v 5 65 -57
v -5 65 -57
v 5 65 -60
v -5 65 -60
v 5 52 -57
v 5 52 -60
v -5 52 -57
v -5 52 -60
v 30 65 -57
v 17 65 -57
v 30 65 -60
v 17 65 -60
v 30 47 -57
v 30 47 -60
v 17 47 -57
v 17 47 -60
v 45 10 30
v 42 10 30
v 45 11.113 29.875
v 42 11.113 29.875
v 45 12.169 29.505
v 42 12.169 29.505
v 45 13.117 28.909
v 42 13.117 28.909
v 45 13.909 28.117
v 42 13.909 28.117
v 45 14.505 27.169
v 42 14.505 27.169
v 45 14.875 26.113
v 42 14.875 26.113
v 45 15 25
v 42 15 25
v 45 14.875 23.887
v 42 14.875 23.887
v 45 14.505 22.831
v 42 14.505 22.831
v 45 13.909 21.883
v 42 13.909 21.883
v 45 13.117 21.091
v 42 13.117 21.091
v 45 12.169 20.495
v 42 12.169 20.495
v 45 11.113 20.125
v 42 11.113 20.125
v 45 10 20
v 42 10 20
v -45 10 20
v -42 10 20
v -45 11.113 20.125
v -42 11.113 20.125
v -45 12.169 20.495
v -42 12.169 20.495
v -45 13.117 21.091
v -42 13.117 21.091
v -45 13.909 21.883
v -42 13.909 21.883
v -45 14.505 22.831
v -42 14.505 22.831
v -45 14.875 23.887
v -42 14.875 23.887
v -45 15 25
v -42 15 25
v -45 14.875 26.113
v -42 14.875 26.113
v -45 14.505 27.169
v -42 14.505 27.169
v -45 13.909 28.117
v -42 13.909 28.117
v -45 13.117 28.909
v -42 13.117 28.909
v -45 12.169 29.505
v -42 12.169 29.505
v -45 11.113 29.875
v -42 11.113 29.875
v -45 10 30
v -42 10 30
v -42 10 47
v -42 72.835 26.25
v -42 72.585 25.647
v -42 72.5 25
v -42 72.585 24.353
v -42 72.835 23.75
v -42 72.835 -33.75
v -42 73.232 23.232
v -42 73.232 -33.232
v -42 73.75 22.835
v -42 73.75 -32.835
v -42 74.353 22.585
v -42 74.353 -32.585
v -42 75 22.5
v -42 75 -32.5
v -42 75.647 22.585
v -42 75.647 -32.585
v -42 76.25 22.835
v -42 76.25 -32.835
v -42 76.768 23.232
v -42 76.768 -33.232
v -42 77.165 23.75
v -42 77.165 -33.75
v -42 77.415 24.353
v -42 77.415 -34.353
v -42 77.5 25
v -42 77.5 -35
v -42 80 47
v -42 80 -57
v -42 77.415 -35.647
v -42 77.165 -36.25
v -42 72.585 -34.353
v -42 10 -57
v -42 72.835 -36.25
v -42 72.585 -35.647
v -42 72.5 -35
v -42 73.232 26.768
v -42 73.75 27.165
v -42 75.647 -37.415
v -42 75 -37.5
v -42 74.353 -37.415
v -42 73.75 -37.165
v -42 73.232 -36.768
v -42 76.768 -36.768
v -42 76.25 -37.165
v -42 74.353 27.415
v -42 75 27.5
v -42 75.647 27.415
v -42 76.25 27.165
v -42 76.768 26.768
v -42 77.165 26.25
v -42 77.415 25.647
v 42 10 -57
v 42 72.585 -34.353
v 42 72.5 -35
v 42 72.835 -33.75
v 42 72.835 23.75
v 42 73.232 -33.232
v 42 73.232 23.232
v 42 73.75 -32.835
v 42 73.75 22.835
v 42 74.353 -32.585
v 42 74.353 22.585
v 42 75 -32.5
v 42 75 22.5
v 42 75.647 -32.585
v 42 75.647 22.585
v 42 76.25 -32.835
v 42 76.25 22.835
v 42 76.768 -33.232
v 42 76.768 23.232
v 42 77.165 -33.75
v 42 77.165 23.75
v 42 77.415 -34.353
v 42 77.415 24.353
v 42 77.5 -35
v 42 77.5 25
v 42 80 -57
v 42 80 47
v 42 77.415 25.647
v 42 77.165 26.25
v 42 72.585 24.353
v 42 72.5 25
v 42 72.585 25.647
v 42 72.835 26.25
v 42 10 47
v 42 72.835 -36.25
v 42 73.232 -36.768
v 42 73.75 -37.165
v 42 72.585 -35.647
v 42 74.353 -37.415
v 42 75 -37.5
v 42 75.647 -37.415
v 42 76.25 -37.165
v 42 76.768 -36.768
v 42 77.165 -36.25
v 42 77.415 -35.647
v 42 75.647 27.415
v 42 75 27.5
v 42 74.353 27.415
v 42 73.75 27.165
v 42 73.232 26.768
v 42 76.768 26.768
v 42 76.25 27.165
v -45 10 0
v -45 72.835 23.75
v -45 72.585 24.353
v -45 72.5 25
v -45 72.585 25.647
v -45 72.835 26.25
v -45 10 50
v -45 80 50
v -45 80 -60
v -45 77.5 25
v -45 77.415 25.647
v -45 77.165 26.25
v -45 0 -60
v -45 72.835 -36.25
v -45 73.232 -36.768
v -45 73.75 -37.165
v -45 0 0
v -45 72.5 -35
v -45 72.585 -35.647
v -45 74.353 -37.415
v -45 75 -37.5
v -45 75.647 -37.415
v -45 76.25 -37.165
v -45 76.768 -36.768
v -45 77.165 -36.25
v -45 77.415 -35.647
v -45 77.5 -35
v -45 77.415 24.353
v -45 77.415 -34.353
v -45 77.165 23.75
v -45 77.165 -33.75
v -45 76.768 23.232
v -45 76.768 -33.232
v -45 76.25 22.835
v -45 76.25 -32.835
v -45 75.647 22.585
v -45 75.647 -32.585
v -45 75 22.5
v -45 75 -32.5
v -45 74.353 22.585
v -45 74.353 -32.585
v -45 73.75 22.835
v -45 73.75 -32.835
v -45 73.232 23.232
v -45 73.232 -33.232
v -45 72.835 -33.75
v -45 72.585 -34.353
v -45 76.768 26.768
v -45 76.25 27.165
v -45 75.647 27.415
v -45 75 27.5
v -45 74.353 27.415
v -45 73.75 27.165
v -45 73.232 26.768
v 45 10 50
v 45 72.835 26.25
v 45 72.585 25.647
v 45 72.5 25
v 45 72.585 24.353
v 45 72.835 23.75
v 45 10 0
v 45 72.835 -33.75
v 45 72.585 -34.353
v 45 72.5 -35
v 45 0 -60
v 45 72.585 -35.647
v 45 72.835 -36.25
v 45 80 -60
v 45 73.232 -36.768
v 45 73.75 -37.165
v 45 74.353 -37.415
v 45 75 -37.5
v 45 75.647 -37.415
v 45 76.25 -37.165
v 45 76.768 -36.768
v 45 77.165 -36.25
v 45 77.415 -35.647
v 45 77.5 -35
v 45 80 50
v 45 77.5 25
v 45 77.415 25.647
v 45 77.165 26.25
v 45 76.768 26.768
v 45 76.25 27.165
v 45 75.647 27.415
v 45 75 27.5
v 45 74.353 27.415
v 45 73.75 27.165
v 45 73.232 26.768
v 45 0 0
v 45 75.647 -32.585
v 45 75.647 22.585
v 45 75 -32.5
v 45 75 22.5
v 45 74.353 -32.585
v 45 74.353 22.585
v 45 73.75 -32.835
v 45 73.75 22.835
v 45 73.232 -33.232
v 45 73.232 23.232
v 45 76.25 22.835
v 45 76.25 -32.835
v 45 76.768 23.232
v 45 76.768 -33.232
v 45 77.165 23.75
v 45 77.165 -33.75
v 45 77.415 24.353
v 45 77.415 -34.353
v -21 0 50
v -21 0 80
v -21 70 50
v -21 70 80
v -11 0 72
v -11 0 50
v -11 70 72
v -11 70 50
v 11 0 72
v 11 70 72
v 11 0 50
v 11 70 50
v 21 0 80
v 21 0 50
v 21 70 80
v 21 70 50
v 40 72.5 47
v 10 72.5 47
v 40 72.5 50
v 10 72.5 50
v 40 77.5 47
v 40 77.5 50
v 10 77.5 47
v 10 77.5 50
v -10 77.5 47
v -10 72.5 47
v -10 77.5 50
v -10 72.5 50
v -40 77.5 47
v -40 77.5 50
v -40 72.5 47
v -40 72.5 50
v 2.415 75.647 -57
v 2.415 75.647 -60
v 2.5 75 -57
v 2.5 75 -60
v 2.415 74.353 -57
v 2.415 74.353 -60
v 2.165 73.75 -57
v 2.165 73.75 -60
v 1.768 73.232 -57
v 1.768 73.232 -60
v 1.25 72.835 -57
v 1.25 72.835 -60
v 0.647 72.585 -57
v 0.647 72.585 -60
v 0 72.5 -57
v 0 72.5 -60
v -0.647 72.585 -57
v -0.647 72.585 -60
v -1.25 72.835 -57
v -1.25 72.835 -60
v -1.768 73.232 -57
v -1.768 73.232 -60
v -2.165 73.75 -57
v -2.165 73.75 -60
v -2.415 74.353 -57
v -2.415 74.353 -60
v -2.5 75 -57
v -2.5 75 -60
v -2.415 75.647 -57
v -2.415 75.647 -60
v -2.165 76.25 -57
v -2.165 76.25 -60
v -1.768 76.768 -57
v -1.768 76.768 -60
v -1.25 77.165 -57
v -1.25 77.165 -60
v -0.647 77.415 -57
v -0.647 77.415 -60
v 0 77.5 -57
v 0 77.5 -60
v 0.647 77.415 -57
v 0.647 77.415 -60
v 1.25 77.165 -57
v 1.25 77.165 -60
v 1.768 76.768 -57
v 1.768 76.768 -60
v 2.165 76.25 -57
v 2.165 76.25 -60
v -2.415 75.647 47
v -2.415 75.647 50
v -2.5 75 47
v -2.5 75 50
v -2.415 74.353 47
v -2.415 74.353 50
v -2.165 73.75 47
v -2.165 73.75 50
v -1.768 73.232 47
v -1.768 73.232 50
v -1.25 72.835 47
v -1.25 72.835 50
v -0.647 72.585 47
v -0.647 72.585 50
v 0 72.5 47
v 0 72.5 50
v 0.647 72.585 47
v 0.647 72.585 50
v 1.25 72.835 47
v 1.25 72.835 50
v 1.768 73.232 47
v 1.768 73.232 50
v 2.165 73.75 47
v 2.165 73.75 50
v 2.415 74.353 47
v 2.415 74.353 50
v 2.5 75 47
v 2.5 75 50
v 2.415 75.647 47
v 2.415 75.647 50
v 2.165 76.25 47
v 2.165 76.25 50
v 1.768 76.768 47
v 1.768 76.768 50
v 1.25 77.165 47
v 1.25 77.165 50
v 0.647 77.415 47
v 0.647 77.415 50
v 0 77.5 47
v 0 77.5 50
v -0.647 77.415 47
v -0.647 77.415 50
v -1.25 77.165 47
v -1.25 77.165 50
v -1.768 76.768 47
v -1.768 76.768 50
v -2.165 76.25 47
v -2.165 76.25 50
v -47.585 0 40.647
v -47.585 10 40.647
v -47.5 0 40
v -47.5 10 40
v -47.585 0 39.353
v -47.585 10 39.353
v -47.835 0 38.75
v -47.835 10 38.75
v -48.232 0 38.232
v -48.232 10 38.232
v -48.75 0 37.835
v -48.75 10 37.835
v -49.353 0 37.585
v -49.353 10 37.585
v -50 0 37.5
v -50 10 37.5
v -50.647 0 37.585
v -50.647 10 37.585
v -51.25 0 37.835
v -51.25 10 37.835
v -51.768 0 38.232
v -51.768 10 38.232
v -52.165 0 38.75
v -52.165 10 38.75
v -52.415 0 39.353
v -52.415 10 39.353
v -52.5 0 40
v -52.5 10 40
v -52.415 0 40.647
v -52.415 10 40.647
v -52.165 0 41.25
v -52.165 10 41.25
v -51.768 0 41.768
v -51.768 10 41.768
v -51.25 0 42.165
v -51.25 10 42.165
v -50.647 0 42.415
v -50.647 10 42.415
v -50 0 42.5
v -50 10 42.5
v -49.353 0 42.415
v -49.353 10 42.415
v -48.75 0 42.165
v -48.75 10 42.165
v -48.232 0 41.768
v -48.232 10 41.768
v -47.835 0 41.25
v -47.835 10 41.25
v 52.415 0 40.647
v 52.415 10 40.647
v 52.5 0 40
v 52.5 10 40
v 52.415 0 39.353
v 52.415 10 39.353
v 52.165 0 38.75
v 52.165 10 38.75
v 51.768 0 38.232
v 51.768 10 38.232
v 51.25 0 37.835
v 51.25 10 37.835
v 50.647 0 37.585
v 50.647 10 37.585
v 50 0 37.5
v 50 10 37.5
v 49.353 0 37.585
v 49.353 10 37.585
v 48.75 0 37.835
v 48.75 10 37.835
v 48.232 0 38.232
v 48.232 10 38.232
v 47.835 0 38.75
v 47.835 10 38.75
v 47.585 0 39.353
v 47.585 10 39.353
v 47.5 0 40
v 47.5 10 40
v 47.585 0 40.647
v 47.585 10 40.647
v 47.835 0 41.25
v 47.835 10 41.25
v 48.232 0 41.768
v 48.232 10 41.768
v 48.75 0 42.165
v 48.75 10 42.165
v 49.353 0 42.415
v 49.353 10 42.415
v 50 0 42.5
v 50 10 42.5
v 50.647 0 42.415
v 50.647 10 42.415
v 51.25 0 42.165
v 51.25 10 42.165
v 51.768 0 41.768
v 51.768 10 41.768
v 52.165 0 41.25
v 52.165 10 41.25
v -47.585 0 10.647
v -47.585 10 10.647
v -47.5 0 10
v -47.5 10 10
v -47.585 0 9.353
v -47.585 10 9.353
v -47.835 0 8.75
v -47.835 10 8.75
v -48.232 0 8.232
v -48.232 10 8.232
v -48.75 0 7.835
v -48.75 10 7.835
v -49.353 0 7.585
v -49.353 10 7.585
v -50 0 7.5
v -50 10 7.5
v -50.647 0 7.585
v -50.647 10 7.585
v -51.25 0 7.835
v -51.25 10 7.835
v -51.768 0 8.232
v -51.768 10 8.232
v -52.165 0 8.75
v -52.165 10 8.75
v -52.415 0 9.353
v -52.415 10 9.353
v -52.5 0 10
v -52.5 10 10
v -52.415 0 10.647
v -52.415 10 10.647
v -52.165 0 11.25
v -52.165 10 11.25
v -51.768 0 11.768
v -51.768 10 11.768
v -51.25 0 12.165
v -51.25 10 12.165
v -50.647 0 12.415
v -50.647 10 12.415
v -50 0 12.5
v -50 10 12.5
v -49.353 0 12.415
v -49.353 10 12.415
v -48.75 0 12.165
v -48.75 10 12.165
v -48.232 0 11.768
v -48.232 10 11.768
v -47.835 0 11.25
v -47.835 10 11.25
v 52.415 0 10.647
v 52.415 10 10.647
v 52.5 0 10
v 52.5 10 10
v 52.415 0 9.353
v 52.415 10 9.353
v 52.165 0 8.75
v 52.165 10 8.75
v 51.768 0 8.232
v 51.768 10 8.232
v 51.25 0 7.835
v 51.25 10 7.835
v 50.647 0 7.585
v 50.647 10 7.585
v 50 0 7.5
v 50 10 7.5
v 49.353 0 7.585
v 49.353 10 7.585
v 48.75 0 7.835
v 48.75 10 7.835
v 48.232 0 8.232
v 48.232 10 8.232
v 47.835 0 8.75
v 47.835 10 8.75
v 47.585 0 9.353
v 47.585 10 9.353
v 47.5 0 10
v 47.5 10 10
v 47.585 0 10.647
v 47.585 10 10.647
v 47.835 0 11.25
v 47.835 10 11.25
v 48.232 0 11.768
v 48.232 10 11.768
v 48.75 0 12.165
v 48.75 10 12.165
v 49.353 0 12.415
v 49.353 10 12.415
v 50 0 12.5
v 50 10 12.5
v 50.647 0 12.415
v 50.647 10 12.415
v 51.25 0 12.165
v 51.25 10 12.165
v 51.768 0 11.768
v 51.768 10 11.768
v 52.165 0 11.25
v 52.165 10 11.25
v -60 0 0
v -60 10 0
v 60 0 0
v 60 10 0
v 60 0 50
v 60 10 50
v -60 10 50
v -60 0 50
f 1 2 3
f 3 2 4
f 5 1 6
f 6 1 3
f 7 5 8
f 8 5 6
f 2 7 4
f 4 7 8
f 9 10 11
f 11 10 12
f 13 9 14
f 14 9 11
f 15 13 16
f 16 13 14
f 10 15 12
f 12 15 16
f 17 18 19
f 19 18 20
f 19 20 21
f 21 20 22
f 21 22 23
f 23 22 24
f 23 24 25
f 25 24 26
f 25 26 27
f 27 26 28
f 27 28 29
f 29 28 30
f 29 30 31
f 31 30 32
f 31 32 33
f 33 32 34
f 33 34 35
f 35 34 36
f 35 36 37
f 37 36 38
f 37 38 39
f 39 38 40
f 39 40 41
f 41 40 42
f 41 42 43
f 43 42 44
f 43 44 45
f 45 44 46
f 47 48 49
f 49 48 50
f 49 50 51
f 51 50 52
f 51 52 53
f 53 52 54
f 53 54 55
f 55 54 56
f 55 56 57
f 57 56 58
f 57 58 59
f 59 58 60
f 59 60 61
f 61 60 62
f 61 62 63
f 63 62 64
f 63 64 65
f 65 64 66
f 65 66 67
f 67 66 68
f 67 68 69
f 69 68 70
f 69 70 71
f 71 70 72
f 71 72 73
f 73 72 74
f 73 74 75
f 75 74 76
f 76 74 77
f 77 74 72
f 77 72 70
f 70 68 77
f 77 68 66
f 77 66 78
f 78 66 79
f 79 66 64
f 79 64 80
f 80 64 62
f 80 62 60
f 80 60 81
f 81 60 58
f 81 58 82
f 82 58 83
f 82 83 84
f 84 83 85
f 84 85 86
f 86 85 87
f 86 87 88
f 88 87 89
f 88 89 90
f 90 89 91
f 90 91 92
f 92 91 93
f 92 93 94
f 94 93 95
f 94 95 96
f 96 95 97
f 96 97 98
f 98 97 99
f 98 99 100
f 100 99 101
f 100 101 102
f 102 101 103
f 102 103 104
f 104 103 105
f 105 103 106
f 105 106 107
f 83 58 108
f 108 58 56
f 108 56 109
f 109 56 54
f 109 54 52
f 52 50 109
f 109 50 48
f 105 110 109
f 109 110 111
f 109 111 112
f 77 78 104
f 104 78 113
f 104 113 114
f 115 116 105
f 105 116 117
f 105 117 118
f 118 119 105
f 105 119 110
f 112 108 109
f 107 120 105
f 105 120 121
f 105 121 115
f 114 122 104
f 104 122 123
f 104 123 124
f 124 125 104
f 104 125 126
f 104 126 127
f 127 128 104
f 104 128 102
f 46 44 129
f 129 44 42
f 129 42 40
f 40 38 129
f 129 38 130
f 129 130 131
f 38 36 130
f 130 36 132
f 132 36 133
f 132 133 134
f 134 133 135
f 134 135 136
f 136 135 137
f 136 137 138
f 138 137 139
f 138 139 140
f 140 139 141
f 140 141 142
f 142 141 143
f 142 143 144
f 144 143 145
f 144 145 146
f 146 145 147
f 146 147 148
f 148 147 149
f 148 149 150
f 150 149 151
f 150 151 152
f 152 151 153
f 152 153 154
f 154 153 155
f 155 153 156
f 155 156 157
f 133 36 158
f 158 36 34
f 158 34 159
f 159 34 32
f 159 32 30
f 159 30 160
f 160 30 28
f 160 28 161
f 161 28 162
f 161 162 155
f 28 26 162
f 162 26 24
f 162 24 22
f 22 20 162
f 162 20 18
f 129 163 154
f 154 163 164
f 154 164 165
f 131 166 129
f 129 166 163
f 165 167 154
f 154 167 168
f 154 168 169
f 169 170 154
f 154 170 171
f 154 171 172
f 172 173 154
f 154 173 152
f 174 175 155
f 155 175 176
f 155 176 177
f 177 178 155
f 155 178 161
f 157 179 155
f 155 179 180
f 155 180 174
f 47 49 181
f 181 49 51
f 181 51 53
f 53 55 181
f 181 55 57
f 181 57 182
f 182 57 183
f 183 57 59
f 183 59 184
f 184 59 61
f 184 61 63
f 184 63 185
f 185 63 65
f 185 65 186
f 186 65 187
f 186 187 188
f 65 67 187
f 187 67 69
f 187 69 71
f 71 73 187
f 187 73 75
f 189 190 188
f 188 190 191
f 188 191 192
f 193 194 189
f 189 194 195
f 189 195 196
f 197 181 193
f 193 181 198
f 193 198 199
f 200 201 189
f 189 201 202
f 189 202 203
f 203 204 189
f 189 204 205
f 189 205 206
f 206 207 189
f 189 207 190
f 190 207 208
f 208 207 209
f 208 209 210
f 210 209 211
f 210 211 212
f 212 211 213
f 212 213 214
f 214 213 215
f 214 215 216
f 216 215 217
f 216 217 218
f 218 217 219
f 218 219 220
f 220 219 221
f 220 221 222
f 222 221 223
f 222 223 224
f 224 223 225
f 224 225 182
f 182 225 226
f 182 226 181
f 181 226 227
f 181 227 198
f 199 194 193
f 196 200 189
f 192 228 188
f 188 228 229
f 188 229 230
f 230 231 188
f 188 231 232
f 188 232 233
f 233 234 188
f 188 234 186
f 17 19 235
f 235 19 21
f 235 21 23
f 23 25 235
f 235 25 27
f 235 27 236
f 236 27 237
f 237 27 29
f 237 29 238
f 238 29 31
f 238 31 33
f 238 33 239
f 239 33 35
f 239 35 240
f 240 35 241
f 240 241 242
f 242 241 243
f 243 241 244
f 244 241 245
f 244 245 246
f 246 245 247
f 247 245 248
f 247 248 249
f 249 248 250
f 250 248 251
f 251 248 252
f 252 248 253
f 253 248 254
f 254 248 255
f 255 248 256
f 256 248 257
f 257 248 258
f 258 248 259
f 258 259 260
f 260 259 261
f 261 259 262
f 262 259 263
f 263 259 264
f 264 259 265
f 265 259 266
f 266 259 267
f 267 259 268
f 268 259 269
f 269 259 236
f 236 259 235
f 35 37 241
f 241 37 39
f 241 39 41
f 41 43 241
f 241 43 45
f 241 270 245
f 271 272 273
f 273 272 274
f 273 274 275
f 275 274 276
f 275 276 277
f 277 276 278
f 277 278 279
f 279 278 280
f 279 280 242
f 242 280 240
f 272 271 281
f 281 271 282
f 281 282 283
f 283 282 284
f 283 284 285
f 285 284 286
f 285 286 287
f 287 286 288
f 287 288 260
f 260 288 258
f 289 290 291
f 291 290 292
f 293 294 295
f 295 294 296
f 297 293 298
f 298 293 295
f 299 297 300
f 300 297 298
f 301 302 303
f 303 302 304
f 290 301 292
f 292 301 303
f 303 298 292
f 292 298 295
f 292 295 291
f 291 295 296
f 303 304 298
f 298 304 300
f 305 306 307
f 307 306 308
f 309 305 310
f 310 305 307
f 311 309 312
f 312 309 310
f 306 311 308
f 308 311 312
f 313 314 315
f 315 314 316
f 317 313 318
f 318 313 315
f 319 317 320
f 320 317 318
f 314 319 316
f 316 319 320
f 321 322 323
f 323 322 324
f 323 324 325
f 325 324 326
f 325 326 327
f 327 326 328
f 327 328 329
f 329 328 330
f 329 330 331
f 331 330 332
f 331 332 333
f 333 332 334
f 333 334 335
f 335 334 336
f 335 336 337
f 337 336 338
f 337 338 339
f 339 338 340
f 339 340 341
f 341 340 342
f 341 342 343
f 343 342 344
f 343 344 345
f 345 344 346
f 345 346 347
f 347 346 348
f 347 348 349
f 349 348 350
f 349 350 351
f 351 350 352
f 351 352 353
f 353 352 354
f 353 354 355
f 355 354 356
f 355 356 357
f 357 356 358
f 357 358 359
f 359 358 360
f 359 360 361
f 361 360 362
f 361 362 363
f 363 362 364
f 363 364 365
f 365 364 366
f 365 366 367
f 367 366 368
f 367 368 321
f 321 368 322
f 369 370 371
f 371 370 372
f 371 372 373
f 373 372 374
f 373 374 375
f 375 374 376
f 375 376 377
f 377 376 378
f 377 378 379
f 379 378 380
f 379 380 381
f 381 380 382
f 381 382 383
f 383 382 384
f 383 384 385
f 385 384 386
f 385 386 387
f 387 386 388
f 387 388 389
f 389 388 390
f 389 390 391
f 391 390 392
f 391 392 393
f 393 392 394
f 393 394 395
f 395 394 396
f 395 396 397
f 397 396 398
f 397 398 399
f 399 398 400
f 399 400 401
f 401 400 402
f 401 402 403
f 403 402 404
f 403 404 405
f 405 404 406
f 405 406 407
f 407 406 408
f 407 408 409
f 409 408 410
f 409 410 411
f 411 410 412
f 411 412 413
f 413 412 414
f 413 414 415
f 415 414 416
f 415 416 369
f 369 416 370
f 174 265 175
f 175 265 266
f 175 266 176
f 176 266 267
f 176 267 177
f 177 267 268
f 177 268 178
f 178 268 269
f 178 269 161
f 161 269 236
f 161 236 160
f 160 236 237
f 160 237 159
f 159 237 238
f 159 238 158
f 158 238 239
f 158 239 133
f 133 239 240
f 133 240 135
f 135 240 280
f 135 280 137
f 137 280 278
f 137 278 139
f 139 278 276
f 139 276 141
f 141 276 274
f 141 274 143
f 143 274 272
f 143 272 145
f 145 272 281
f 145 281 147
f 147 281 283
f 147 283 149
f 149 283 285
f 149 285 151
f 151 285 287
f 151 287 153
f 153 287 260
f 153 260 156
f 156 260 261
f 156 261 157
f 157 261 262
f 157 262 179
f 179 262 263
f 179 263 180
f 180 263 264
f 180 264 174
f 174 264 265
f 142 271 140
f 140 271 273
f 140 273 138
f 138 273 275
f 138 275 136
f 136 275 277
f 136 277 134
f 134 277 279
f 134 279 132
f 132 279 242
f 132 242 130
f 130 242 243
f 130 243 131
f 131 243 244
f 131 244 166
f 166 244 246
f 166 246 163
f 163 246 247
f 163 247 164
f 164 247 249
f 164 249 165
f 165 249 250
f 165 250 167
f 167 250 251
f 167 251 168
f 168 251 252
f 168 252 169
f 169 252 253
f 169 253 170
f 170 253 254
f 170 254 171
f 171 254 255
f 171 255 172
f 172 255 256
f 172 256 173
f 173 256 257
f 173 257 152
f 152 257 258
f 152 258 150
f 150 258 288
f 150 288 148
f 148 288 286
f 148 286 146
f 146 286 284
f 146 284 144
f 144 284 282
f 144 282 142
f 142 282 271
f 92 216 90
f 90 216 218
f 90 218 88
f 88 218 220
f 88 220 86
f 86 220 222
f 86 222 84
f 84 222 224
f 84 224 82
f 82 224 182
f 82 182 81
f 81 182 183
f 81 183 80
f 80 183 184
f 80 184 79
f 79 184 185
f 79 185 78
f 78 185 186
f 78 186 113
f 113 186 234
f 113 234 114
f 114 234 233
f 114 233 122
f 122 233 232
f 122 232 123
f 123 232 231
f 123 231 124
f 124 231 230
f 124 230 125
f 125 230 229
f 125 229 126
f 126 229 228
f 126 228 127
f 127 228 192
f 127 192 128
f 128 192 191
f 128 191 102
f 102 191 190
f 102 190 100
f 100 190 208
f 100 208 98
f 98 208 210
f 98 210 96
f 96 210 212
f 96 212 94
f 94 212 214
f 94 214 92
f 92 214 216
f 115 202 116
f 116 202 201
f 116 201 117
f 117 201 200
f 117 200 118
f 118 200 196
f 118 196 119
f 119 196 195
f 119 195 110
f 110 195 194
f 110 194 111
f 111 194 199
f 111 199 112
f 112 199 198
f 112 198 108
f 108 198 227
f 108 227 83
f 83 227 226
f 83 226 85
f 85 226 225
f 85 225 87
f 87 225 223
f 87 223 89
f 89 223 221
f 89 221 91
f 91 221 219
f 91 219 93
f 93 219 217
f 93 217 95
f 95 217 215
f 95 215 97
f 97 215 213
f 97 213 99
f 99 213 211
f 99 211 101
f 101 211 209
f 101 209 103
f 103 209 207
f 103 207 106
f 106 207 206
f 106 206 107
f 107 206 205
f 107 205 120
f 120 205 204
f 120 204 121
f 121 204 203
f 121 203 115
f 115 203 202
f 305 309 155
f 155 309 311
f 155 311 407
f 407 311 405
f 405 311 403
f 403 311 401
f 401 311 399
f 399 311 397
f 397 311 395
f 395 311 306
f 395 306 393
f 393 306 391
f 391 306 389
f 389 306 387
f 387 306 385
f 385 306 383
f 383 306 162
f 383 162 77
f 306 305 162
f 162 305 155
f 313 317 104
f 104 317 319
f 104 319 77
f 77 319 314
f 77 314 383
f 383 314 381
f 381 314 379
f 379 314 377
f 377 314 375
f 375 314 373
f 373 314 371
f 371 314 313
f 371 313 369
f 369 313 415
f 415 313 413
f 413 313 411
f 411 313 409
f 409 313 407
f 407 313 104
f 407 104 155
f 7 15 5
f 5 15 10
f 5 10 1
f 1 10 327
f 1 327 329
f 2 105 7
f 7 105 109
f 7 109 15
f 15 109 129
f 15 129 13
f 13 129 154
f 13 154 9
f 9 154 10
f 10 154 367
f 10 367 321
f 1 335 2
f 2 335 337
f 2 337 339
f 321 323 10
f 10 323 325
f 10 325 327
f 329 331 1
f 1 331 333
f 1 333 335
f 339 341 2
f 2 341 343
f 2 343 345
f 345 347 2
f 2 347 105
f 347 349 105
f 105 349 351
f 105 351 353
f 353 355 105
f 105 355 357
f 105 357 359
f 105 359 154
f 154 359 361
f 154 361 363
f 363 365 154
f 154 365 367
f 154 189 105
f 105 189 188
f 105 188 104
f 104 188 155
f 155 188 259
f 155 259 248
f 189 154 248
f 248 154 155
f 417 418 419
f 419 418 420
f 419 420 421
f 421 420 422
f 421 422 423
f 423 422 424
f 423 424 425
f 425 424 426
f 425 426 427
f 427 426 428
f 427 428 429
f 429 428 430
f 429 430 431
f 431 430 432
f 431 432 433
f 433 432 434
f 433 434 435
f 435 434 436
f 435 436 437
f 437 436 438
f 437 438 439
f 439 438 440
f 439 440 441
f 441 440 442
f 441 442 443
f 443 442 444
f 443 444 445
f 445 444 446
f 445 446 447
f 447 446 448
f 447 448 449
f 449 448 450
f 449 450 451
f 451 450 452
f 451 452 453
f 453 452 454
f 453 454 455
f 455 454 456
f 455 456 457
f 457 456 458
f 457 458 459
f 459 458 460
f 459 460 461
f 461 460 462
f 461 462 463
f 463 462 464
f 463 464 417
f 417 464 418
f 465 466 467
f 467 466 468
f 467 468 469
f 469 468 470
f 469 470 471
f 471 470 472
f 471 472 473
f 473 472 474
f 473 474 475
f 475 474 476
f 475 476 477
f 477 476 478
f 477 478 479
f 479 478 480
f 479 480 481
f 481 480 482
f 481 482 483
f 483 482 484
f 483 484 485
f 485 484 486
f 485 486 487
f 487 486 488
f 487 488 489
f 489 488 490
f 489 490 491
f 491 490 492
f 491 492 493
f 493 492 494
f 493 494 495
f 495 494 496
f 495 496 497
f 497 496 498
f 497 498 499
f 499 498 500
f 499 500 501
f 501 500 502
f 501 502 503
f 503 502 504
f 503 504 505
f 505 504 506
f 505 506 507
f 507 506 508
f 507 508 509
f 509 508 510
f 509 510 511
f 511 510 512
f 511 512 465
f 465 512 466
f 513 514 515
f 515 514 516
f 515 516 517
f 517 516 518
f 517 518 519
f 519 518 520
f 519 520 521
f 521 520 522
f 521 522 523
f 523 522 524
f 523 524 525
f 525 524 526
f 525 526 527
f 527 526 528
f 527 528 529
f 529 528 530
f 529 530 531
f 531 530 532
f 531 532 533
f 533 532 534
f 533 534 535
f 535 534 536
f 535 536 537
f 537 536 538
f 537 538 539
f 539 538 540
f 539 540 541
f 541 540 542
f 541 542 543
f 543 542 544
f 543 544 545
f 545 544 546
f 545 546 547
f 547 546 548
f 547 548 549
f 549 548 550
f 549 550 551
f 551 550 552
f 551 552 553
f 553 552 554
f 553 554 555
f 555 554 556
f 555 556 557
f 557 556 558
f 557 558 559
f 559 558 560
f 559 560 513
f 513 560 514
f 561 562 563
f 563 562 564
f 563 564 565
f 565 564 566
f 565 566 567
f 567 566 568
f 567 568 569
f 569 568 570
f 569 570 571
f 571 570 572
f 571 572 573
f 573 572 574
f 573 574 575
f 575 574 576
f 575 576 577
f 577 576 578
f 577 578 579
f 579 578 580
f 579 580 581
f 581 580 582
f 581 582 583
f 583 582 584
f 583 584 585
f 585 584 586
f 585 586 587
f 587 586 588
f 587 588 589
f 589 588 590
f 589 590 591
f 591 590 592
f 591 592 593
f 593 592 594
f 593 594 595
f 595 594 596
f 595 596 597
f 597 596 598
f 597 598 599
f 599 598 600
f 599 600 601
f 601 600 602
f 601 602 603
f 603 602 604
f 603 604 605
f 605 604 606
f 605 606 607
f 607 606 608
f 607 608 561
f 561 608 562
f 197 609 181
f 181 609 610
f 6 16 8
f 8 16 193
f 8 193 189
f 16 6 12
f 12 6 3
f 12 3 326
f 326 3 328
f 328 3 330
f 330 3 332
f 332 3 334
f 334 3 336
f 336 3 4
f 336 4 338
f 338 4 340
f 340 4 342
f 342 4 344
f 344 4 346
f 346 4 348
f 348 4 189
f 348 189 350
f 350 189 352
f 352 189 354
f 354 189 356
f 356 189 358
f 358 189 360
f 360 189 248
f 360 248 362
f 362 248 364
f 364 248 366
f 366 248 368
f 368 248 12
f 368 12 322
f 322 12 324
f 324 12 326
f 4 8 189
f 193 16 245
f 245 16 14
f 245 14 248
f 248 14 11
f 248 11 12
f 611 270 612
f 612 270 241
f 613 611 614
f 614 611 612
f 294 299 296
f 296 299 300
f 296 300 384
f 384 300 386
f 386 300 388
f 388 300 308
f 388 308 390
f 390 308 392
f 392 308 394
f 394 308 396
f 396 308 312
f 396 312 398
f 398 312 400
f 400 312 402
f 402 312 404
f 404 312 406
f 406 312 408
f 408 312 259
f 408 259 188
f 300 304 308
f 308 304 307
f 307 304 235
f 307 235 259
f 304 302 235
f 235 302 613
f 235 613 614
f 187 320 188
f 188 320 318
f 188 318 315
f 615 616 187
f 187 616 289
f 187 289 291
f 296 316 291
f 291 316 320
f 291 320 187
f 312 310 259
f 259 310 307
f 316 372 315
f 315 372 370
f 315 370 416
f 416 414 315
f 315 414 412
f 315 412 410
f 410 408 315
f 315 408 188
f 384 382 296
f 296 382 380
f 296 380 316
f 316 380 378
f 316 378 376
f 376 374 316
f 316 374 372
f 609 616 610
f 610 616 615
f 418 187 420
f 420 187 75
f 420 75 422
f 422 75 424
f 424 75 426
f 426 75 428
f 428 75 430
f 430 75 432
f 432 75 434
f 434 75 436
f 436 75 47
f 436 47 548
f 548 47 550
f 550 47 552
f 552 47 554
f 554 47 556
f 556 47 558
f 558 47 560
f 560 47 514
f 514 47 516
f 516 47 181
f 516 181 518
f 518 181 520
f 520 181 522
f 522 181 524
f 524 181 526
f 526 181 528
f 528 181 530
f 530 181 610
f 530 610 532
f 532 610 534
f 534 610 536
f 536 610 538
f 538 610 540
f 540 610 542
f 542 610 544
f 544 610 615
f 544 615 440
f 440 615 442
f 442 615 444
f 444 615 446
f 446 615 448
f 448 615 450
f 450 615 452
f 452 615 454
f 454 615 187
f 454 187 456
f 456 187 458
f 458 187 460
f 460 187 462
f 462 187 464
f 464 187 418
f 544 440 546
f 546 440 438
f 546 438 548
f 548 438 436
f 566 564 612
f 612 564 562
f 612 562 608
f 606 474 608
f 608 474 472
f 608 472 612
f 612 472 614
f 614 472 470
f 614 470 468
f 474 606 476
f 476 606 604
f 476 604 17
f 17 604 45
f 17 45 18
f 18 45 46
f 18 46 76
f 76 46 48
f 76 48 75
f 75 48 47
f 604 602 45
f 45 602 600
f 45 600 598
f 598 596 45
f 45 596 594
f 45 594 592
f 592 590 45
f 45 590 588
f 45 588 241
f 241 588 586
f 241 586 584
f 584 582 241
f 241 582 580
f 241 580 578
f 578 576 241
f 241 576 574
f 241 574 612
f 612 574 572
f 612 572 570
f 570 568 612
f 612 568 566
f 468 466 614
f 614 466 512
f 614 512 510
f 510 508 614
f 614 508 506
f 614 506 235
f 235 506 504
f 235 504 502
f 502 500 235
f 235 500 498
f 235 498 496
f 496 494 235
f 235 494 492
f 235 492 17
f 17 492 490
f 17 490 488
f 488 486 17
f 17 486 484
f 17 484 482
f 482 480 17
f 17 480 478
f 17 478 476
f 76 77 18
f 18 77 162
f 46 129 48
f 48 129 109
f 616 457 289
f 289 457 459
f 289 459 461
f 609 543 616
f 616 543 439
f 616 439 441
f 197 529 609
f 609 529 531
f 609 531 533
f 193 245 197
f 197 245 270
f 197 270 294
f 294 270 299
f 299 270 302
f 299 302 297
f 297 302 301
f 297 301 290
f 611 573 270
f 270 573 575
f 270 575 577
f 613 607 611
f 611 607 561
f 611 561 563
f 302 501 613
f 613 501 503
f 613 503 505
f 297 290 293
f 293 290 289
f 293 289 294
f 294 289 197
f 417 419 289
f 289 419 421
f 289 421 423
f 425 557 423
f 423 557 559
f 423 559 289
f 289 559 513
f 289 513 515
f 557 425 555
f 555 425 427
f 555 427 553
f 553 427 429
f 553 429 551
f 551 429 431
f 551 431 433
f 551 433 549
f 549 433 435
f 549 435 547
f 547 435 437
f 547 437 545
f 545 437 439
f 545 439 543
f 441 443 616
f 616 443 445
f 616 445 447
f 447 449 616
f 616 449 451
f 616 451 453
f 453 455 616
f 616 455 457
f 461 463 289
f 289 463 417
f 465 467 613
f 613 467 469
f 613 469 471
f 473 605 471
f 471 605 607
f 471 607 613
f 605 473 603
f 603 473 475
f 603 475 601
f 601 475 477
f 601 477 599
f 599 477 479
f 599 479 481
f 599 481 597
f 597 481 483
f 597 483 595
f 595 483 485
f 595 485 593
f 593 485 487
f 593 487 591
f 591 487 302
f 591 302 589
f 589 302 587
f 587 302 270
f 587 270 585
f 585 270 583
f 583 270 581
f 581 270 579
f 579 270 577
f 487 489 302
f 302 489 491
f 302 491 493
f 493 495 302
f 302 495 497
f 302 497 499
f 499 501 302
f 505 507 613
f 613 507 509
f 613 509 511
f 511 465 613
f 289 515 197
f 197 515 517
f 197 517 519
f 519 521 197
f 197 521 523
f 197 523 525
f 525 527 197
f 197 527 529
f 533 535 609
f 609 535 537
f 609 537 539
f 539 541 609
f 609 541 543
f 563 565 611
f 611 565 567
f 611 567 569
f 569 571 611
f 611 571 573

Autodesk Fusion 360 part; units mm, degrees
sketch "Sketch1" plane through (0, 0, 0) normal (0, 1, 0) x (1, 0, 0)
  line L0 (0, 0) -> (60, 0)
  line L1 (60, 0) -> (-60, 0)
  line L2 (-60, 0) -> (-60, -50)
  line L3 (-60, -50) -> (60, -50)
  line L4 (60, -50) -> (60, 0)
  line L5 (-60, 0) -> (-45, 0)
  line L6 (60, 0) -> (45, 0)
  line L7 (-45, 0) -> (-45, 60)
  line L8 (45, 0) -> (45, 60)
  line L9 (-45, 60) -> (45, 60)
  dimension "d1" = 60
  dimension "d2" = 120
  dimension "d3" = 50
  dimension "d4" = 15
  dimension "d5" = 15
  dimension "d6" = 60
  dimension "d7" = 60
extrude "Extrude1" add sketch "Sketch1" along normal blind 10
sketch "Sketch2" plane through (0, 10, 0) normal (0, 1, 0) x (-1, 0, 0)
  line L0 (60, 0) -> (60, 50)
  line L1 (60, 50) -> (-60, 50)
  line L2 (-60, 50) -> (-60, 0)
  line L3 (-60, 0) -> (-45, 0)
  line L4 (-45, 0) -> (-45, -60)
  line L5 (-45, -60) -> (45, -60)
  line L6 (45, -60) -> (45, 0)
  line L7 (45, 0) -> (60, 0)
  line L8 (60, 50) -> (60, 40)
  line L9 (-60, 50) -> (-60, 40)
  circle A0 centre (50, 40) radius 2.5
  circle A1 centre (-50, 40) radius 2.5
  circle A2 centre (50, 10) radius 2.5
  circle A3 centre (-50, 10) radius 2.5
  dimension "d10" = 10
  dimension "d11" = 10
  dimension "d12" = 10
  dimension "d13" = 10
  dimension "d14" = 5
  dimension "d15" = 5
  dimension "d16" = 30
  dimension "d17" = 5
  dimension "d18" = 30
  dimension "d19" = 5
extrude "Extrude2" cut sketch "Sketch2" against normal blind 20 contours A0 | A1 | A2 | A3
sketch "Sketch3" plane through (0, 10, 0) normal (0, 1, 0) x (-1, 0, 0)
  circle A0 centre (50, 40) radius 2.5
  circle A1 centre (-50, 40) radius 2.5
  circle A2 centre (50, 10) radius 2.5
  circle A3 centre (-50, 10) radius 2.5
  line L0 (60, 0) -> (60, 50)
  line L1 (60, 50) -> (-60, 50)
  line L2 (-60, 50) -> (-60, 0)
  line L3 (-60, 0) -> (-45, 0)
  line L4 (-45, 0) -> (-45, -60)
  line L5 (-45, -60) -> (45, -60)
  line L6 (45, -60) -> (45, 0)
  line L7 (45, 0) -> (60, 0)
  line L8 (45, -60) -> (45, 50)
  line L9 (-45, -60) -> (-45, 50)
  line L10 (45, 50) -> (-45, 50)
  line L11 (-45, -60) -> (45, -60)
  line L12 (45, 50) -> (42, 50)
  line L13 (45, -60) -> (42, -60)
  line L14 (-45, -60) -> (-45, -57)
  line L15 (-45, 50) -> (-42, 50)
  line L16 (42, 47) -> (42, -57)
  line L17 (-42, -57) -> (42, -57)
  line L18 (-42, -57) -> (-42, 47)
  line L19 (-42, 47) -> (42, 47)
  dimension "d22" = 3
  dimension "d23" = 3
  dimension "d24" = 3
  dimension "d25" = 3
  dimension "d26" = 3
  dimension "d27" = 3
  dimension "d28" = 3
  dimension "d29" = 3
extrude "Extrude3" add sketch "Sketch3" along normal blind 70 contours L1 L4 L5 L6 L8 L9 L10 L11 L12 L13 L14 L15
sketch "Sketch4" plane through (-45, 0, 0) normal (-1, 0, 0) x (0, 0, 1)
  line L0 (-60, 0) -> (0, 0)
  line L1 (0, 0) -> (0, 10)
  line L2 (0, 10) -> (50, 10)
  line L3 (50, 10) -> (50, 80)
  line L4 (50, 80) -> (-60, 80)
  line L5 (-60, 80) -> (-60, 0)
  line L6 (-60, 80) -> (-60, 75)
  circle A0 centre (-35, 75) radius 2.5
  circle A1 centre (25, 75) radius 2.5
  dimension "d32" = 25
  dimension "d34" = 5
  dimension "d35" = 5
extrude "Extrude4" cut sketch "Sketch4" against normal blind 10 contours A0 | A1
sketch "Sketch5" plane through (45, 0, 0) normal (1, 0, 0) x (0, 0, -1)
  line L0 (0, 0) -> (60, 0)
  line L1 (60, 0) -> (60, 80)
  line L2 (60, 80) -> (-50, 80)
  line L3 (-50, 80) -> (-50, 10)
  line L4 (-50, 10) -> (0, 10)
  line L5 (0, 10) -> (0, 0)
  line L6 (-50, 80) -> (-50, 75)
  circle A0 centre (-25, 75) radius 2.5
  circle A1 centre (35, 75) radius 2.5
  dimension "d38" = 5
  dimension "d39" = 25
  dimension "d41" = 5
  dimension "d42" = 5
extrude "Extrude5" cut sketch "Sketch5" against normal blind 11 contours A0 | A1
sketch "Sketch6" plane through (0, 0, 50) normal (0, 0, 1) x (1, 0, 0)
  line L0 (-60, 0) -> (60, 0)
  line L1 (60, 0) -> (60, 10)
  line L2 (60, 10) -> (45, 10)
  line L3 (45, 10) -> (45, 80)
  line L4 (45, 80) -> (-45, 80)
  line L5 (-45, 80) -> (-45, 10)
  line L6 (-45, 10) -> (-60, 10)
  line L7 (-60, 10) -> (-60, 0)
  circle A0 centre (0, 75) radius 2.5
  dimension "d47" = 5
extrude "Extrude6" cut sketch "Sketch6" against normal blind 11 contours A0
sketch "Sketch7" plane through (0, 0, -60) normal (0, 0, -1) x (-1, 0, 0)
  line L0 (-45, 0) -> (45, 0)
  line L1 (45, 0) -> (45, 80)
  line L2 (45, 80) -> (-45, 80)
  line L3 (-45, 80) -> (-45, 0)
  circle A0 centre (0, 75) radius 2.5
  dimension "d51" = 5
extrude "Extrude7" cut sketch "Sketch7" against normal blind 11 contours A0
sketch "Sketch8" plane through (0, 0, 50) normal (0, 0, 1) x (1, 0, 0)
  circle A0 centre (0, 75) radius 2.5
  line L0 (-60, 0) -> (60, 0)
  line L1 (60, 0) -> (60, 10)
  line L2 (60, 10) -> (45, 10)
  line L3 (45, 10) -> (45, 80)
  line L4 (45, 80) -> (-45, 80)
  line L5 (-45, 80) -> (-45, 10)
  line L6 (-45, 10) -> (-60, 10)
  line L7 (-60, 10) -> (-60, 0)
  line L8 (-45, 80) -> (-45, 75)
  line L9 (-15, 77.5) -> (-35, 77.5)
  line L10 (-35, 72.5) -> (-15, 72.5)
  line L11 (-15, 77.5) -> (-10, 77.5)
  line L12 (-10, 77.5) -> (-10, 72.5)
  line L13 (-10, 72.5) -> (-15, 72.5)
  line L14 (-35, 77.5) -> (-40, 77.5)
  line L15 (-40, 77.5) -> (-40, 72.5)
  line L16 (-40, 72.5) -> (-35, 72.5)
  dimension "d55" = 20
  dimension "d56" = 5
  dimension "d57" = 5
extrude "Extrude8" cut sketch "Sketch8" against normal blind 20 contours L9 L10 L11 L12 L13 L14 L15 L16
sketch "Sketch9" plane through (0, 0, 50) normal (0, 0, 1) x (1, 0, 0)
  line L0 (-40, 72.5) -> (-40, 77.5)
  line L1 (-40, 77.5) -> (-10, 77.5)
  line L2 (-10, 77.5) -> (-10, 72.5)
  line L3 (-10, 72.5) -> (-40, 72.5)
  circle A0 centre (0, 75) radius 2.5
  line L4 (-60, 0) -> (60, 0)
  line L5 (60, 0) -> (60, 10)
  line L6 (60, 10) -> (45, 10)
  line L7 (45, 10) -> (45, 80)
  line L8 (45, 80) -> (-45, 80)
  line L9 (-45, 80) -> (-45, 10)
  line L10 (-45, 10) -> (-60, 10)
  line L11 (-60, 10) -> (-60, 0)
  line L12 (45, 80) -> (45, 75)
  line L13 (45, 75) -> (40, 75)
  line L14 (40, 75) -> (40, 72.5)
  line L15 (40, 75) -> (40, 77.5)
  line L16 (40, 77.5) -> (10, 77.5)
  line L17 (10, 77.5) -> (10, 72.5)
  line L18 (10, 72.5) -> (40, 72.5)
  dimension "d60" = 2.5
  dimension "d61" = 2.5
  dimension "d62" = 30
  dimension "d63" = 5
extrude "Extrude9" cut sketch "Sketch9" against normal blind 20 contours L14 L15 L16 L17 L18
sketch "Sketch10" plane through (0, 0, 0) normal (0, -1, 0) x (1, 0, 0)
  circle A0 centre (-50, 40) radius 2.5
  circle A1 centre (50, 40) radius 2.5
  circle A2 centre (-50, 10) radius 2.5
  circle A3 centre (50, 10) radius 2.5
  line L0 (-60, 50) -> (-60, 0)
  line L1 (-60, 0) -> (-45, 0)
  line L2 (-45, 0) -> (-45, -60)
  line L3 (-45, -60) -> (45, -60)
  line L4 (45, -60) -> (45, 0)
  line L5 (45, 0) -> (60, 0)
  line L6 (60, 0) -> (60, 50)
  line L7 (60, 50) -> (-60, 50)
  line L8 (0, 50) -> (11, 50)
  line L9 (11, 50) -> (11, 72)
  line L10 (11, 72) -> (-11, 72)
  line L11 (-11, 72) -> (-11, 50)
  line L12 (-11, 50) -> (-21, 50)
  line L13 (-21, 50) -> (-21, 80)
  line L14 (-21, 80) -> (21, 80)
  line L15 (21, 80) -> (21, 50)
  dimension "d66" = 11
  dimension "d67" = 22
  dimension "d68" = 22
  dimension "d69" = 10
extrude "Extrude10" add sketch "Sketch10" against normal blind 70 contours L7 L9 L10 L11 L12 L13 L14 L15
sketch "Sketch11" plane through (0, 0, 0) normal (0, -1, 0) x (1, 0, 0)
  line L0 (-21, 50) -> (-60, 50)
  line L1 (-60, 50) -> (-60, 0)
  line L2 (-60, 0) -> (-45, 0)
  line L3 (-45, 0) -> (-45, -60)
  line L4 (-45, -60) -> (45, -60)
  line L5 (45, -60) -> (45, 0)
  line L6 (45, 0) -> (60, 0)
  line L7 (60, 0) -> (60, 50)
  line L8 (60, 50) -> (21, 50)
  line L9 (21, 50) -> (21, 80)
  line L10 (21, 80) -> (-21, 80)
  line L11 (-21, 80) -> (-21, 50)
  circle A0 centre (-50, 40) radius 2.5
  circle A1 centre (50, 40) radius 2.5
  circle A2 centre (-50, 10) radius 2.5
  circle A3 centre (50, 10) radius 2.5
  line L12 (-11, 50) -> (-11, 72)
  line L13 (-11, 72) -> (11, 72)
  line L14 (11, 72) -> (11, 50)
  line L15 (11, 50) -> (-11, 50)
sketch "Sketch12" plane through (0, 0, 0) normal (0, -1, 0) x (1, 0, 0)
sketch "Sketch13" plane through (0, 0, 80) normal (0, 0, 1) x (1, 0, 0)
  line L0 (-21, 0) -> (21, 0)
  line L1 (21, 0) -> (21, 70)
  line L2 (21, 70) -> (-21, 70)
  line L3 (-21, 70) -> (-21, 0)
sketch "Sketch14" plane through (-45, 0, 0) normal (-1, 0, 0) x (0, 0, 1)
  circle A0 centre (25, 75) radius 2.5
  circle A1 centre (-35, 75) radius 2.5
  line L0 (-60, 0) -> (0, 0)
  line L1 (0, 0) -> (0, 10)
  line L2 (0, 10) -> (50, 10)
  line L3 (50, 10) -> (50, 80)
  line L4 (50, 80) -> (-60, 80)
  line L5 (-60, 80) -> (-60, 0)
  line L6 (0, 10) -> (25, 10)
  arc A2 (30, 10) -> (20, 10) centre (25, 10) ccw
  dimension "d72" = 10
extrude "Extrude11" cut sketch "Sketch14" against normal blind 100 contours L2 L6 A2
sketch "Sketch15" plane through (0, 0, -60) normal (0, 0, -1) x (-1, 0, 0)
  circle A0 centre (0, 75) radius 2.5
  line L0 (-45, 0) -> (45, 0)
  line L1 (45, 0) -> (45, 80)
  line L2 (45, 80) -> (-45, 80)
  line L3 (-45, 80) -> (-45, 0)
  line L4 (-45, 80) -> (-45, 65)
  line L5 (-30, 65) -> (-17, 65)
  line L6 (-30, 65) -> (-30, 47)
  line L7 (-30, 47) -> (-17, 47)
  line L8 (-17, 47) -> (-17, 65)
  dimension "d76" = 13
  dimension "d77" = 18
  dimension "d78" = 13
extrude "Extrude12" cut sketch "Sketch15" against normal blind 20 contours L5 L6 L7 L8
sketch "Sketch16" plane through (0, 0, -60) normal (0, 0, -1) x (-1, 0, 0)
  line L0 (-17, 47) -> (-30, 47)
  line L1 (-30, 47) -> (-30, 65)
  line L2 (-30, 65) -> (-17, 65)
  line L3 (-17, 65) -> (-17, 47)
  circle A0 centre (0, 75) radius 2.5
  line L4 (-45, 0) -> (45, 0)
  line L5 (45, 0) -> (45, 80)
  line L6 (45, 80) -> (-45, 80)
  line L7 (-45, 80) -> (-45, 0)
  line L8 (-5, 65) -> (5, 65)
  line L9 (-5, 65) -> (-5, 52)
  line L10 (-5, 52) -> (5, 52)
  line L11 (5, 52) -> (5, 65)
  dimension "d81" = 10
  dimension "d82" = 13
  dimension "d83" = 10
extrude "Extrude13" cut sketch "Sketch16" against normal blind 20 contours L8 L9 L10 L11
sketch "Sketch17" plane through (0, 80, 0) normal (0, 1, 0) x (-1, 0, 0)
  line L0 (42, -57) -> (-42, -57)
  line L1 (-42, -57) -> (-42, 47)
  line L2 (-42, 47) -> (42, 47)
  line L3 (42, 47) -> (42, -57)
  line L4 (-45, -60) -> (45, -60)
  line L5 (45, -60) -> (45, 50)
  line L6 (45, 50) -> (-45, 50)
  line L7 (-45, 50) -> (-45, -60)
sketch "Sketch18" plane through (0, 0, 50) normal (0, 0, 1) x (1, 0, 0)
  line L0 (-11, 70) -> (-11, 0)
  line L1 (-11, 0) -> (11, 0)
  line L2 (11, 0) -> (11, 70)
  line L3 (11, 70) -> (21, 70)
  line L4 (21, 70) -> (21, 0)
  line L5 (21, 0) -> (60, 0)
  line L6 (60, 0) -> (60, 10)
  line L7 (60, 10) -> (45, 10)
  line L8 (45, 10) -> (45, 80)
  line L9 (45, 80) -> (-45, 80)
  line L10 (-45, 80) -> (-45, 10)
  line L11 (-45, 10) -> (-60, 10)
  line L12 (-60, 10) -> (-60, 0)
  line L13 (-60, 0) -> (-21, 0)
  line L14 (-21, 0) -> (-21, 70)
  line L15 (-21, 70) -> (-11, 70)
  line L16 (10, 77.5) -> (40, 77.5)
  line L17 (40, 77.5) -> (40, 72.5)
  line L18 (40, 72.5) -> (10, 72.5)
  line L19 (10, 72.5) -> (10, 77.5)
  line L20 (-40, 72.5) -> (-40, 77.5)
  line L21 (-40, 77.5) -> (-10, 77.5)
  line L22 (-10, 77.5) -> (-10, 72.5)
  line L23 (-10, 72.5) -> (-40, 72.5)
  circle A0 centre (0, 75) radius 2.5
sketch "Sketch19" plane through (0, 80, 0) normal (0, 1, 0) x (-1, 0, 0)
sketch "Sketch20" plane through (0, 0, 50) normal (0, 0, 1) x (1, 0, 0)
sketch "Sketch21" plane through (-45, 0, 0) normal (-1, 0, 0) x (0, 0, 1)
  arc A0 (30, 10) -> (20, 10) centre (25, 10) ccw
  line L0 (30, 10) -> (50, 10)
  line L1 (50, 10) -> (50, 80)
  line L2 (50, 80) -> (-60, 80)
  line L3 (-60, 80) -> (-60, 0)
  line L4 (-60, 0) -> (0, 0)
  line L5 (0, 0) -> (0, 10)
  line L6 (0, 10) -> (20, 10)
  circle A1 centre (-35, 75) radius 2.5
  circle A2 centre (25, 75) radius 2.5
sketch "Sketch22" plane through (0, 80, 0) normal (0, 1, 0) x (-1, 0, 0)
sketch "Sketch23" plane through (-45, 0, 0) normal (-1, 0, 0) x (0, 0, 1)
sketch "Sketch24" plane through (45, 0, 0) normal (1, 0, 0) x (0, 0, -1)
  arc A0 (-20, 10) -> (-30, 10) centre (-25, 10) ccw
  line L0 (-20, 10) -> (0, 10)
  line L1 (0, 10) -> (0, 0)
  line L2 (0, 0) -> (60, 0)
  line L3 (60, 0) -> (60, 80)
  line L4 (60, 80) -> (-50, 80)
  line L5 (-50, 80) -> (-50, 10)
  line L6 (-50, 10) -> (-30, 10)
  circle A1 centre (35, 75) radius 2.5
  circle A2 centre (-25, 75) radius 2.5
sketch "Sketch25" plane through (0, 80, 0) normal (0, 1, 0) x (-1, 0, 0)
  point P0 (42, -57)
  point P1 (-42, -57)
  point P2 (42, 47)
  dimension "d86" = 84
  dimension "d87" = 104
